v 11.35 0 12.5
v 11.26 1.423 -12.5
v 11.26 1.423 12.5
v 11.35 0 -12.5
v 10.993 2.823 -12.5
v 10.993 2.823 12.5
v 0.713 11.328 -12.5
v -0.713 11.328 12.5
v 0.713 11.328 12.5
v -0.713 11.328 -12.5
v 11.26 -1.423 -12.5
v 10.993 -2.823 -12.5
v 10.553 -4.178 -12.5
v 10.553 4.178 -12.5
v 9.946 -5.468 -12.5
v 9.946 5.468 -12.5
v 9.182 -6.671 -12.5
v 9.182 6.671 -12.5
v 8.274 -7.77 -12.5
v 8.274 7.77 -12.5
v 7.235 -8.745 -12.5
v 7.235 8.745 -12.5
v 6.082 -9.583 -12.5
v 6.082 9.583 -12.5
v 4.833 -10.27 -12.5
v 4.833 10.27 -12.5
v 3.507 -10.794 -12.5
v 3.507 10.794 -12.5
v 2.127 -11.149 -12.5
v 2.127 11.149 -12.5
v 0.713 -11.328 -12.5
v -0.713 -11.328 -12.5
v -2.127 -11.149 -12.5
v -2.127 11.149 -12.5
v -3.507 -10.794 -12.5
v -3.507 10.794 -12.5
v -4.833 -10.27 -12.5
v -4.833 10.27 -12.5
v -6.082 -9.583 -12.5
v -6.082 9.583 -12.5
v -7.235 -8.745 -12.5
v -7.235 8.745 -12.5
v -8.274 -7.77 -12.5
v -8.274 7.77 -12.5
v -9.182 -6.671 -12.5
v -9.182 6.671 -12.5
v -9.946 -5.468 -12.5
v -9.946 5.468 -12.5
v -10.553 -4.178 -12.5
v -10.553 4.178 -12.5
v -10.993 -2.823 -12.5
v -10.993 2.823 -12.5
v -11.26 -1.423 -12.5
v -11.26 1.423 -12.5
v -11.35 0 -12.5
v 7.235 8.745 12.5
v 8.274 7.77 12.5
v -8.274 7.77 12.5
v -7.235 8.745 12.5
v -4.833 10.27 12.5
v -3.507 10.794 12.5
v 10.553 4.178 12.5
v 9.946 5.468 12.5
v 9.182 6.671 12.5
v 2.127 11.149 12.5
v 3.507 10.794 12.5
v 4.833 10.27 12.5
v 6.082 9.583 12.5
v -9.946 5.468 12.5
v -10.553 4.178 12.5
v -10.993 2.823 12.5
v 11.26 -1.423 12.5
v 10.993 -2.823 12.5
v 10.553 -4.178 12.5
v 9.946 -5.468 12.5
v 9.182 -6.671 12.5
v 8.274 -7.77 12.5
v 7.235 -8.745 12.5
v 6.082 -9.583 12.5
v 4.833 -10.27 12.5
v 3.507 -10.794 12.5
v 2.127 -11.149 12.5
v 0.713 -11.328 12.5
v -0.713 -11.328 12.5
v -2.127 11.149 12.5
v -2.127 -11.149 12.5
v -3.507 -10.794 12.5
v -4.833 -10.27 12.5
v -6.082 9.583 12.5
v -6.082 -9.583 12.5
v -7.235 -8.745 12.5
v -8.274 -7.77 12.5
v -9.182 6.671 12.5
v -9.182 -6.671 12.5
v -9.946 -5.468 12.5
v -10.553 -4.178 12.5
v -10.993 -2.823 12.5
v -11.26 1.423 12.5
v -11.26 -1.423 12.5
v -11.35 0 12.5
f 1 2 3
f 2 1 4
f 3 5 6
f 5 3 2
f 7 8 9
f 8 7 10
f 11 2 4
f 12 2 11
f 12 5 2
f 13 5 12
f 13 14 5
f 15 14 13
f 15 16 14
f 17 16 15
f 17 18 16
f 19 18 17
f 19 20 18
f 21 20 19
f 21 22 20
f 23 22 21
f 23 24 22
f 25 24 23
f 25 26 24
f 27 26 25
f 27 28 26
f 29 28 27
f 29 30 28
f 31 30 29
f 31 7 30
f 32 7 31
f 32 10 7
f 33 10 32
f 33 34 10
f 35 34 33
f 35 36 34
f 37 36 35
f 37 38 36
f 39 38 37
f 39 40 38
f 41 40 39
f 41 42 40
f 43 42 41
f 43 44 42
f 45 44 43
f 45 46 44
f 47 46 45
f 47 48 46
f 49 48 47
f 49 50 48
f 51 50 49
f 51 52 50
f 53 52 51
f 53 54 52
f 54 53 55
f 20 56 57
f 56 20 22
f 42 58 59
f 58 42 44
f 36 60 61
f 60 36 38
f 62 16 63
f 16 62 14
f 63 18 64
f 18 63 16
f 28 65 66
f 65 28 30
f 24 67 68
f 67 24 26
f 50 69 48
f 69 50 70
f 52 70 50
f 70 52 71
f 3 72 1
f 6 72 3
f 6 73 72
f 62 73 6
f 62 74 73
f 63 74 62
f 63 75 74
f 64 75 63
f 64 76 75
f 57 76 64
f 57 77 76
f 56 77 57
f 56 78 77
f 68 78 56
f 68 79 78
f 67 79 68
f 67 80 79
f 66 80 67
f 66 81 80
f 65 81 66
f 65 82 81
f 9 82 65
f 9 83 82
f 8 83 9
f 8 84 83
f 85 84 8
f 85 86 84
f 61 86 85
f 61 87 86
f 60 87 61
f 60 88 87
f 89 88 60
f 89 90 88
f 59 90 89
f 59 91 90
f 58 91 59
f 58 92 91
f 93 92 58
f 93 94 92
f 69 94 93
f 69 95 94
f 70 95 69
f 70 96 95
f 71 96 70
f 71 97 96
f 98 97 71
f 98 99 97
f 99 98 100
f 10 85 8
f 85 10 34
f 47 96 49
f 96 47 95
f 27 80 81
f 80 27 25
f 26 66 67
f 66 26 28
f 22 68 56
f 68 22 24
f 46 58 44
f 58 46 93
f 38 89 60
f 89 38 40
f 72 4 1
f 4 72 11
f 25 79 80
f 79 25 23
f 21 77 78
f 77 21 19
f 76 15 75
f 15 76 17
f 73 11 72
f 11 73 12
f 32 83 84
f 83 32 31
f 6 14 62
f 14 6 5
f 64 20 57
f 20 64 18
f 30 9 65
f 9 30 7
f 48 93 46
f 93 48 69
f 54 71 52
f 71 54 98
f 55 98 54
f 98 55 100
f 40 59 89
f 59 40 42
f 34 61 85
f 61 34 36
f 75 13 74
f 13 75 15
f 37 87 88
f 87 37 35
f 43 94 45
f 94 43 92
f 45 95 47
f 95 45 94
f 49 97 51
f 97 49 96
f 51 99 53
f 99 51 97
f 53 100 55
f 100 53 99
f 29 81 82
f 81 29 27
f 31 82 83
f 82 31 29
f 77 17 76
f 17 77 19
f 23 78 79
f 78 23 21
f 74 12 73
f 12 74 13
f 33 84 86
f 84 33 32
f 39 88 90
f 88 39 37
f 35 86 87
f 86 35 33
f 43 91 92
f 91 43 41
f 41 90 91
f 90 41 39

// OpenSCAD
$fn = 50;


difference() {
	union() {
		translate(v = [0, 0, -12.5000000000]) {
			cylinder(h = 25, r = 11.3500000000);
		}
	}
	union() {
		translate(v = [0, 0, -100.0000000000]) {
			cylinder(h = 200, r = 0);
		}
	}
}
